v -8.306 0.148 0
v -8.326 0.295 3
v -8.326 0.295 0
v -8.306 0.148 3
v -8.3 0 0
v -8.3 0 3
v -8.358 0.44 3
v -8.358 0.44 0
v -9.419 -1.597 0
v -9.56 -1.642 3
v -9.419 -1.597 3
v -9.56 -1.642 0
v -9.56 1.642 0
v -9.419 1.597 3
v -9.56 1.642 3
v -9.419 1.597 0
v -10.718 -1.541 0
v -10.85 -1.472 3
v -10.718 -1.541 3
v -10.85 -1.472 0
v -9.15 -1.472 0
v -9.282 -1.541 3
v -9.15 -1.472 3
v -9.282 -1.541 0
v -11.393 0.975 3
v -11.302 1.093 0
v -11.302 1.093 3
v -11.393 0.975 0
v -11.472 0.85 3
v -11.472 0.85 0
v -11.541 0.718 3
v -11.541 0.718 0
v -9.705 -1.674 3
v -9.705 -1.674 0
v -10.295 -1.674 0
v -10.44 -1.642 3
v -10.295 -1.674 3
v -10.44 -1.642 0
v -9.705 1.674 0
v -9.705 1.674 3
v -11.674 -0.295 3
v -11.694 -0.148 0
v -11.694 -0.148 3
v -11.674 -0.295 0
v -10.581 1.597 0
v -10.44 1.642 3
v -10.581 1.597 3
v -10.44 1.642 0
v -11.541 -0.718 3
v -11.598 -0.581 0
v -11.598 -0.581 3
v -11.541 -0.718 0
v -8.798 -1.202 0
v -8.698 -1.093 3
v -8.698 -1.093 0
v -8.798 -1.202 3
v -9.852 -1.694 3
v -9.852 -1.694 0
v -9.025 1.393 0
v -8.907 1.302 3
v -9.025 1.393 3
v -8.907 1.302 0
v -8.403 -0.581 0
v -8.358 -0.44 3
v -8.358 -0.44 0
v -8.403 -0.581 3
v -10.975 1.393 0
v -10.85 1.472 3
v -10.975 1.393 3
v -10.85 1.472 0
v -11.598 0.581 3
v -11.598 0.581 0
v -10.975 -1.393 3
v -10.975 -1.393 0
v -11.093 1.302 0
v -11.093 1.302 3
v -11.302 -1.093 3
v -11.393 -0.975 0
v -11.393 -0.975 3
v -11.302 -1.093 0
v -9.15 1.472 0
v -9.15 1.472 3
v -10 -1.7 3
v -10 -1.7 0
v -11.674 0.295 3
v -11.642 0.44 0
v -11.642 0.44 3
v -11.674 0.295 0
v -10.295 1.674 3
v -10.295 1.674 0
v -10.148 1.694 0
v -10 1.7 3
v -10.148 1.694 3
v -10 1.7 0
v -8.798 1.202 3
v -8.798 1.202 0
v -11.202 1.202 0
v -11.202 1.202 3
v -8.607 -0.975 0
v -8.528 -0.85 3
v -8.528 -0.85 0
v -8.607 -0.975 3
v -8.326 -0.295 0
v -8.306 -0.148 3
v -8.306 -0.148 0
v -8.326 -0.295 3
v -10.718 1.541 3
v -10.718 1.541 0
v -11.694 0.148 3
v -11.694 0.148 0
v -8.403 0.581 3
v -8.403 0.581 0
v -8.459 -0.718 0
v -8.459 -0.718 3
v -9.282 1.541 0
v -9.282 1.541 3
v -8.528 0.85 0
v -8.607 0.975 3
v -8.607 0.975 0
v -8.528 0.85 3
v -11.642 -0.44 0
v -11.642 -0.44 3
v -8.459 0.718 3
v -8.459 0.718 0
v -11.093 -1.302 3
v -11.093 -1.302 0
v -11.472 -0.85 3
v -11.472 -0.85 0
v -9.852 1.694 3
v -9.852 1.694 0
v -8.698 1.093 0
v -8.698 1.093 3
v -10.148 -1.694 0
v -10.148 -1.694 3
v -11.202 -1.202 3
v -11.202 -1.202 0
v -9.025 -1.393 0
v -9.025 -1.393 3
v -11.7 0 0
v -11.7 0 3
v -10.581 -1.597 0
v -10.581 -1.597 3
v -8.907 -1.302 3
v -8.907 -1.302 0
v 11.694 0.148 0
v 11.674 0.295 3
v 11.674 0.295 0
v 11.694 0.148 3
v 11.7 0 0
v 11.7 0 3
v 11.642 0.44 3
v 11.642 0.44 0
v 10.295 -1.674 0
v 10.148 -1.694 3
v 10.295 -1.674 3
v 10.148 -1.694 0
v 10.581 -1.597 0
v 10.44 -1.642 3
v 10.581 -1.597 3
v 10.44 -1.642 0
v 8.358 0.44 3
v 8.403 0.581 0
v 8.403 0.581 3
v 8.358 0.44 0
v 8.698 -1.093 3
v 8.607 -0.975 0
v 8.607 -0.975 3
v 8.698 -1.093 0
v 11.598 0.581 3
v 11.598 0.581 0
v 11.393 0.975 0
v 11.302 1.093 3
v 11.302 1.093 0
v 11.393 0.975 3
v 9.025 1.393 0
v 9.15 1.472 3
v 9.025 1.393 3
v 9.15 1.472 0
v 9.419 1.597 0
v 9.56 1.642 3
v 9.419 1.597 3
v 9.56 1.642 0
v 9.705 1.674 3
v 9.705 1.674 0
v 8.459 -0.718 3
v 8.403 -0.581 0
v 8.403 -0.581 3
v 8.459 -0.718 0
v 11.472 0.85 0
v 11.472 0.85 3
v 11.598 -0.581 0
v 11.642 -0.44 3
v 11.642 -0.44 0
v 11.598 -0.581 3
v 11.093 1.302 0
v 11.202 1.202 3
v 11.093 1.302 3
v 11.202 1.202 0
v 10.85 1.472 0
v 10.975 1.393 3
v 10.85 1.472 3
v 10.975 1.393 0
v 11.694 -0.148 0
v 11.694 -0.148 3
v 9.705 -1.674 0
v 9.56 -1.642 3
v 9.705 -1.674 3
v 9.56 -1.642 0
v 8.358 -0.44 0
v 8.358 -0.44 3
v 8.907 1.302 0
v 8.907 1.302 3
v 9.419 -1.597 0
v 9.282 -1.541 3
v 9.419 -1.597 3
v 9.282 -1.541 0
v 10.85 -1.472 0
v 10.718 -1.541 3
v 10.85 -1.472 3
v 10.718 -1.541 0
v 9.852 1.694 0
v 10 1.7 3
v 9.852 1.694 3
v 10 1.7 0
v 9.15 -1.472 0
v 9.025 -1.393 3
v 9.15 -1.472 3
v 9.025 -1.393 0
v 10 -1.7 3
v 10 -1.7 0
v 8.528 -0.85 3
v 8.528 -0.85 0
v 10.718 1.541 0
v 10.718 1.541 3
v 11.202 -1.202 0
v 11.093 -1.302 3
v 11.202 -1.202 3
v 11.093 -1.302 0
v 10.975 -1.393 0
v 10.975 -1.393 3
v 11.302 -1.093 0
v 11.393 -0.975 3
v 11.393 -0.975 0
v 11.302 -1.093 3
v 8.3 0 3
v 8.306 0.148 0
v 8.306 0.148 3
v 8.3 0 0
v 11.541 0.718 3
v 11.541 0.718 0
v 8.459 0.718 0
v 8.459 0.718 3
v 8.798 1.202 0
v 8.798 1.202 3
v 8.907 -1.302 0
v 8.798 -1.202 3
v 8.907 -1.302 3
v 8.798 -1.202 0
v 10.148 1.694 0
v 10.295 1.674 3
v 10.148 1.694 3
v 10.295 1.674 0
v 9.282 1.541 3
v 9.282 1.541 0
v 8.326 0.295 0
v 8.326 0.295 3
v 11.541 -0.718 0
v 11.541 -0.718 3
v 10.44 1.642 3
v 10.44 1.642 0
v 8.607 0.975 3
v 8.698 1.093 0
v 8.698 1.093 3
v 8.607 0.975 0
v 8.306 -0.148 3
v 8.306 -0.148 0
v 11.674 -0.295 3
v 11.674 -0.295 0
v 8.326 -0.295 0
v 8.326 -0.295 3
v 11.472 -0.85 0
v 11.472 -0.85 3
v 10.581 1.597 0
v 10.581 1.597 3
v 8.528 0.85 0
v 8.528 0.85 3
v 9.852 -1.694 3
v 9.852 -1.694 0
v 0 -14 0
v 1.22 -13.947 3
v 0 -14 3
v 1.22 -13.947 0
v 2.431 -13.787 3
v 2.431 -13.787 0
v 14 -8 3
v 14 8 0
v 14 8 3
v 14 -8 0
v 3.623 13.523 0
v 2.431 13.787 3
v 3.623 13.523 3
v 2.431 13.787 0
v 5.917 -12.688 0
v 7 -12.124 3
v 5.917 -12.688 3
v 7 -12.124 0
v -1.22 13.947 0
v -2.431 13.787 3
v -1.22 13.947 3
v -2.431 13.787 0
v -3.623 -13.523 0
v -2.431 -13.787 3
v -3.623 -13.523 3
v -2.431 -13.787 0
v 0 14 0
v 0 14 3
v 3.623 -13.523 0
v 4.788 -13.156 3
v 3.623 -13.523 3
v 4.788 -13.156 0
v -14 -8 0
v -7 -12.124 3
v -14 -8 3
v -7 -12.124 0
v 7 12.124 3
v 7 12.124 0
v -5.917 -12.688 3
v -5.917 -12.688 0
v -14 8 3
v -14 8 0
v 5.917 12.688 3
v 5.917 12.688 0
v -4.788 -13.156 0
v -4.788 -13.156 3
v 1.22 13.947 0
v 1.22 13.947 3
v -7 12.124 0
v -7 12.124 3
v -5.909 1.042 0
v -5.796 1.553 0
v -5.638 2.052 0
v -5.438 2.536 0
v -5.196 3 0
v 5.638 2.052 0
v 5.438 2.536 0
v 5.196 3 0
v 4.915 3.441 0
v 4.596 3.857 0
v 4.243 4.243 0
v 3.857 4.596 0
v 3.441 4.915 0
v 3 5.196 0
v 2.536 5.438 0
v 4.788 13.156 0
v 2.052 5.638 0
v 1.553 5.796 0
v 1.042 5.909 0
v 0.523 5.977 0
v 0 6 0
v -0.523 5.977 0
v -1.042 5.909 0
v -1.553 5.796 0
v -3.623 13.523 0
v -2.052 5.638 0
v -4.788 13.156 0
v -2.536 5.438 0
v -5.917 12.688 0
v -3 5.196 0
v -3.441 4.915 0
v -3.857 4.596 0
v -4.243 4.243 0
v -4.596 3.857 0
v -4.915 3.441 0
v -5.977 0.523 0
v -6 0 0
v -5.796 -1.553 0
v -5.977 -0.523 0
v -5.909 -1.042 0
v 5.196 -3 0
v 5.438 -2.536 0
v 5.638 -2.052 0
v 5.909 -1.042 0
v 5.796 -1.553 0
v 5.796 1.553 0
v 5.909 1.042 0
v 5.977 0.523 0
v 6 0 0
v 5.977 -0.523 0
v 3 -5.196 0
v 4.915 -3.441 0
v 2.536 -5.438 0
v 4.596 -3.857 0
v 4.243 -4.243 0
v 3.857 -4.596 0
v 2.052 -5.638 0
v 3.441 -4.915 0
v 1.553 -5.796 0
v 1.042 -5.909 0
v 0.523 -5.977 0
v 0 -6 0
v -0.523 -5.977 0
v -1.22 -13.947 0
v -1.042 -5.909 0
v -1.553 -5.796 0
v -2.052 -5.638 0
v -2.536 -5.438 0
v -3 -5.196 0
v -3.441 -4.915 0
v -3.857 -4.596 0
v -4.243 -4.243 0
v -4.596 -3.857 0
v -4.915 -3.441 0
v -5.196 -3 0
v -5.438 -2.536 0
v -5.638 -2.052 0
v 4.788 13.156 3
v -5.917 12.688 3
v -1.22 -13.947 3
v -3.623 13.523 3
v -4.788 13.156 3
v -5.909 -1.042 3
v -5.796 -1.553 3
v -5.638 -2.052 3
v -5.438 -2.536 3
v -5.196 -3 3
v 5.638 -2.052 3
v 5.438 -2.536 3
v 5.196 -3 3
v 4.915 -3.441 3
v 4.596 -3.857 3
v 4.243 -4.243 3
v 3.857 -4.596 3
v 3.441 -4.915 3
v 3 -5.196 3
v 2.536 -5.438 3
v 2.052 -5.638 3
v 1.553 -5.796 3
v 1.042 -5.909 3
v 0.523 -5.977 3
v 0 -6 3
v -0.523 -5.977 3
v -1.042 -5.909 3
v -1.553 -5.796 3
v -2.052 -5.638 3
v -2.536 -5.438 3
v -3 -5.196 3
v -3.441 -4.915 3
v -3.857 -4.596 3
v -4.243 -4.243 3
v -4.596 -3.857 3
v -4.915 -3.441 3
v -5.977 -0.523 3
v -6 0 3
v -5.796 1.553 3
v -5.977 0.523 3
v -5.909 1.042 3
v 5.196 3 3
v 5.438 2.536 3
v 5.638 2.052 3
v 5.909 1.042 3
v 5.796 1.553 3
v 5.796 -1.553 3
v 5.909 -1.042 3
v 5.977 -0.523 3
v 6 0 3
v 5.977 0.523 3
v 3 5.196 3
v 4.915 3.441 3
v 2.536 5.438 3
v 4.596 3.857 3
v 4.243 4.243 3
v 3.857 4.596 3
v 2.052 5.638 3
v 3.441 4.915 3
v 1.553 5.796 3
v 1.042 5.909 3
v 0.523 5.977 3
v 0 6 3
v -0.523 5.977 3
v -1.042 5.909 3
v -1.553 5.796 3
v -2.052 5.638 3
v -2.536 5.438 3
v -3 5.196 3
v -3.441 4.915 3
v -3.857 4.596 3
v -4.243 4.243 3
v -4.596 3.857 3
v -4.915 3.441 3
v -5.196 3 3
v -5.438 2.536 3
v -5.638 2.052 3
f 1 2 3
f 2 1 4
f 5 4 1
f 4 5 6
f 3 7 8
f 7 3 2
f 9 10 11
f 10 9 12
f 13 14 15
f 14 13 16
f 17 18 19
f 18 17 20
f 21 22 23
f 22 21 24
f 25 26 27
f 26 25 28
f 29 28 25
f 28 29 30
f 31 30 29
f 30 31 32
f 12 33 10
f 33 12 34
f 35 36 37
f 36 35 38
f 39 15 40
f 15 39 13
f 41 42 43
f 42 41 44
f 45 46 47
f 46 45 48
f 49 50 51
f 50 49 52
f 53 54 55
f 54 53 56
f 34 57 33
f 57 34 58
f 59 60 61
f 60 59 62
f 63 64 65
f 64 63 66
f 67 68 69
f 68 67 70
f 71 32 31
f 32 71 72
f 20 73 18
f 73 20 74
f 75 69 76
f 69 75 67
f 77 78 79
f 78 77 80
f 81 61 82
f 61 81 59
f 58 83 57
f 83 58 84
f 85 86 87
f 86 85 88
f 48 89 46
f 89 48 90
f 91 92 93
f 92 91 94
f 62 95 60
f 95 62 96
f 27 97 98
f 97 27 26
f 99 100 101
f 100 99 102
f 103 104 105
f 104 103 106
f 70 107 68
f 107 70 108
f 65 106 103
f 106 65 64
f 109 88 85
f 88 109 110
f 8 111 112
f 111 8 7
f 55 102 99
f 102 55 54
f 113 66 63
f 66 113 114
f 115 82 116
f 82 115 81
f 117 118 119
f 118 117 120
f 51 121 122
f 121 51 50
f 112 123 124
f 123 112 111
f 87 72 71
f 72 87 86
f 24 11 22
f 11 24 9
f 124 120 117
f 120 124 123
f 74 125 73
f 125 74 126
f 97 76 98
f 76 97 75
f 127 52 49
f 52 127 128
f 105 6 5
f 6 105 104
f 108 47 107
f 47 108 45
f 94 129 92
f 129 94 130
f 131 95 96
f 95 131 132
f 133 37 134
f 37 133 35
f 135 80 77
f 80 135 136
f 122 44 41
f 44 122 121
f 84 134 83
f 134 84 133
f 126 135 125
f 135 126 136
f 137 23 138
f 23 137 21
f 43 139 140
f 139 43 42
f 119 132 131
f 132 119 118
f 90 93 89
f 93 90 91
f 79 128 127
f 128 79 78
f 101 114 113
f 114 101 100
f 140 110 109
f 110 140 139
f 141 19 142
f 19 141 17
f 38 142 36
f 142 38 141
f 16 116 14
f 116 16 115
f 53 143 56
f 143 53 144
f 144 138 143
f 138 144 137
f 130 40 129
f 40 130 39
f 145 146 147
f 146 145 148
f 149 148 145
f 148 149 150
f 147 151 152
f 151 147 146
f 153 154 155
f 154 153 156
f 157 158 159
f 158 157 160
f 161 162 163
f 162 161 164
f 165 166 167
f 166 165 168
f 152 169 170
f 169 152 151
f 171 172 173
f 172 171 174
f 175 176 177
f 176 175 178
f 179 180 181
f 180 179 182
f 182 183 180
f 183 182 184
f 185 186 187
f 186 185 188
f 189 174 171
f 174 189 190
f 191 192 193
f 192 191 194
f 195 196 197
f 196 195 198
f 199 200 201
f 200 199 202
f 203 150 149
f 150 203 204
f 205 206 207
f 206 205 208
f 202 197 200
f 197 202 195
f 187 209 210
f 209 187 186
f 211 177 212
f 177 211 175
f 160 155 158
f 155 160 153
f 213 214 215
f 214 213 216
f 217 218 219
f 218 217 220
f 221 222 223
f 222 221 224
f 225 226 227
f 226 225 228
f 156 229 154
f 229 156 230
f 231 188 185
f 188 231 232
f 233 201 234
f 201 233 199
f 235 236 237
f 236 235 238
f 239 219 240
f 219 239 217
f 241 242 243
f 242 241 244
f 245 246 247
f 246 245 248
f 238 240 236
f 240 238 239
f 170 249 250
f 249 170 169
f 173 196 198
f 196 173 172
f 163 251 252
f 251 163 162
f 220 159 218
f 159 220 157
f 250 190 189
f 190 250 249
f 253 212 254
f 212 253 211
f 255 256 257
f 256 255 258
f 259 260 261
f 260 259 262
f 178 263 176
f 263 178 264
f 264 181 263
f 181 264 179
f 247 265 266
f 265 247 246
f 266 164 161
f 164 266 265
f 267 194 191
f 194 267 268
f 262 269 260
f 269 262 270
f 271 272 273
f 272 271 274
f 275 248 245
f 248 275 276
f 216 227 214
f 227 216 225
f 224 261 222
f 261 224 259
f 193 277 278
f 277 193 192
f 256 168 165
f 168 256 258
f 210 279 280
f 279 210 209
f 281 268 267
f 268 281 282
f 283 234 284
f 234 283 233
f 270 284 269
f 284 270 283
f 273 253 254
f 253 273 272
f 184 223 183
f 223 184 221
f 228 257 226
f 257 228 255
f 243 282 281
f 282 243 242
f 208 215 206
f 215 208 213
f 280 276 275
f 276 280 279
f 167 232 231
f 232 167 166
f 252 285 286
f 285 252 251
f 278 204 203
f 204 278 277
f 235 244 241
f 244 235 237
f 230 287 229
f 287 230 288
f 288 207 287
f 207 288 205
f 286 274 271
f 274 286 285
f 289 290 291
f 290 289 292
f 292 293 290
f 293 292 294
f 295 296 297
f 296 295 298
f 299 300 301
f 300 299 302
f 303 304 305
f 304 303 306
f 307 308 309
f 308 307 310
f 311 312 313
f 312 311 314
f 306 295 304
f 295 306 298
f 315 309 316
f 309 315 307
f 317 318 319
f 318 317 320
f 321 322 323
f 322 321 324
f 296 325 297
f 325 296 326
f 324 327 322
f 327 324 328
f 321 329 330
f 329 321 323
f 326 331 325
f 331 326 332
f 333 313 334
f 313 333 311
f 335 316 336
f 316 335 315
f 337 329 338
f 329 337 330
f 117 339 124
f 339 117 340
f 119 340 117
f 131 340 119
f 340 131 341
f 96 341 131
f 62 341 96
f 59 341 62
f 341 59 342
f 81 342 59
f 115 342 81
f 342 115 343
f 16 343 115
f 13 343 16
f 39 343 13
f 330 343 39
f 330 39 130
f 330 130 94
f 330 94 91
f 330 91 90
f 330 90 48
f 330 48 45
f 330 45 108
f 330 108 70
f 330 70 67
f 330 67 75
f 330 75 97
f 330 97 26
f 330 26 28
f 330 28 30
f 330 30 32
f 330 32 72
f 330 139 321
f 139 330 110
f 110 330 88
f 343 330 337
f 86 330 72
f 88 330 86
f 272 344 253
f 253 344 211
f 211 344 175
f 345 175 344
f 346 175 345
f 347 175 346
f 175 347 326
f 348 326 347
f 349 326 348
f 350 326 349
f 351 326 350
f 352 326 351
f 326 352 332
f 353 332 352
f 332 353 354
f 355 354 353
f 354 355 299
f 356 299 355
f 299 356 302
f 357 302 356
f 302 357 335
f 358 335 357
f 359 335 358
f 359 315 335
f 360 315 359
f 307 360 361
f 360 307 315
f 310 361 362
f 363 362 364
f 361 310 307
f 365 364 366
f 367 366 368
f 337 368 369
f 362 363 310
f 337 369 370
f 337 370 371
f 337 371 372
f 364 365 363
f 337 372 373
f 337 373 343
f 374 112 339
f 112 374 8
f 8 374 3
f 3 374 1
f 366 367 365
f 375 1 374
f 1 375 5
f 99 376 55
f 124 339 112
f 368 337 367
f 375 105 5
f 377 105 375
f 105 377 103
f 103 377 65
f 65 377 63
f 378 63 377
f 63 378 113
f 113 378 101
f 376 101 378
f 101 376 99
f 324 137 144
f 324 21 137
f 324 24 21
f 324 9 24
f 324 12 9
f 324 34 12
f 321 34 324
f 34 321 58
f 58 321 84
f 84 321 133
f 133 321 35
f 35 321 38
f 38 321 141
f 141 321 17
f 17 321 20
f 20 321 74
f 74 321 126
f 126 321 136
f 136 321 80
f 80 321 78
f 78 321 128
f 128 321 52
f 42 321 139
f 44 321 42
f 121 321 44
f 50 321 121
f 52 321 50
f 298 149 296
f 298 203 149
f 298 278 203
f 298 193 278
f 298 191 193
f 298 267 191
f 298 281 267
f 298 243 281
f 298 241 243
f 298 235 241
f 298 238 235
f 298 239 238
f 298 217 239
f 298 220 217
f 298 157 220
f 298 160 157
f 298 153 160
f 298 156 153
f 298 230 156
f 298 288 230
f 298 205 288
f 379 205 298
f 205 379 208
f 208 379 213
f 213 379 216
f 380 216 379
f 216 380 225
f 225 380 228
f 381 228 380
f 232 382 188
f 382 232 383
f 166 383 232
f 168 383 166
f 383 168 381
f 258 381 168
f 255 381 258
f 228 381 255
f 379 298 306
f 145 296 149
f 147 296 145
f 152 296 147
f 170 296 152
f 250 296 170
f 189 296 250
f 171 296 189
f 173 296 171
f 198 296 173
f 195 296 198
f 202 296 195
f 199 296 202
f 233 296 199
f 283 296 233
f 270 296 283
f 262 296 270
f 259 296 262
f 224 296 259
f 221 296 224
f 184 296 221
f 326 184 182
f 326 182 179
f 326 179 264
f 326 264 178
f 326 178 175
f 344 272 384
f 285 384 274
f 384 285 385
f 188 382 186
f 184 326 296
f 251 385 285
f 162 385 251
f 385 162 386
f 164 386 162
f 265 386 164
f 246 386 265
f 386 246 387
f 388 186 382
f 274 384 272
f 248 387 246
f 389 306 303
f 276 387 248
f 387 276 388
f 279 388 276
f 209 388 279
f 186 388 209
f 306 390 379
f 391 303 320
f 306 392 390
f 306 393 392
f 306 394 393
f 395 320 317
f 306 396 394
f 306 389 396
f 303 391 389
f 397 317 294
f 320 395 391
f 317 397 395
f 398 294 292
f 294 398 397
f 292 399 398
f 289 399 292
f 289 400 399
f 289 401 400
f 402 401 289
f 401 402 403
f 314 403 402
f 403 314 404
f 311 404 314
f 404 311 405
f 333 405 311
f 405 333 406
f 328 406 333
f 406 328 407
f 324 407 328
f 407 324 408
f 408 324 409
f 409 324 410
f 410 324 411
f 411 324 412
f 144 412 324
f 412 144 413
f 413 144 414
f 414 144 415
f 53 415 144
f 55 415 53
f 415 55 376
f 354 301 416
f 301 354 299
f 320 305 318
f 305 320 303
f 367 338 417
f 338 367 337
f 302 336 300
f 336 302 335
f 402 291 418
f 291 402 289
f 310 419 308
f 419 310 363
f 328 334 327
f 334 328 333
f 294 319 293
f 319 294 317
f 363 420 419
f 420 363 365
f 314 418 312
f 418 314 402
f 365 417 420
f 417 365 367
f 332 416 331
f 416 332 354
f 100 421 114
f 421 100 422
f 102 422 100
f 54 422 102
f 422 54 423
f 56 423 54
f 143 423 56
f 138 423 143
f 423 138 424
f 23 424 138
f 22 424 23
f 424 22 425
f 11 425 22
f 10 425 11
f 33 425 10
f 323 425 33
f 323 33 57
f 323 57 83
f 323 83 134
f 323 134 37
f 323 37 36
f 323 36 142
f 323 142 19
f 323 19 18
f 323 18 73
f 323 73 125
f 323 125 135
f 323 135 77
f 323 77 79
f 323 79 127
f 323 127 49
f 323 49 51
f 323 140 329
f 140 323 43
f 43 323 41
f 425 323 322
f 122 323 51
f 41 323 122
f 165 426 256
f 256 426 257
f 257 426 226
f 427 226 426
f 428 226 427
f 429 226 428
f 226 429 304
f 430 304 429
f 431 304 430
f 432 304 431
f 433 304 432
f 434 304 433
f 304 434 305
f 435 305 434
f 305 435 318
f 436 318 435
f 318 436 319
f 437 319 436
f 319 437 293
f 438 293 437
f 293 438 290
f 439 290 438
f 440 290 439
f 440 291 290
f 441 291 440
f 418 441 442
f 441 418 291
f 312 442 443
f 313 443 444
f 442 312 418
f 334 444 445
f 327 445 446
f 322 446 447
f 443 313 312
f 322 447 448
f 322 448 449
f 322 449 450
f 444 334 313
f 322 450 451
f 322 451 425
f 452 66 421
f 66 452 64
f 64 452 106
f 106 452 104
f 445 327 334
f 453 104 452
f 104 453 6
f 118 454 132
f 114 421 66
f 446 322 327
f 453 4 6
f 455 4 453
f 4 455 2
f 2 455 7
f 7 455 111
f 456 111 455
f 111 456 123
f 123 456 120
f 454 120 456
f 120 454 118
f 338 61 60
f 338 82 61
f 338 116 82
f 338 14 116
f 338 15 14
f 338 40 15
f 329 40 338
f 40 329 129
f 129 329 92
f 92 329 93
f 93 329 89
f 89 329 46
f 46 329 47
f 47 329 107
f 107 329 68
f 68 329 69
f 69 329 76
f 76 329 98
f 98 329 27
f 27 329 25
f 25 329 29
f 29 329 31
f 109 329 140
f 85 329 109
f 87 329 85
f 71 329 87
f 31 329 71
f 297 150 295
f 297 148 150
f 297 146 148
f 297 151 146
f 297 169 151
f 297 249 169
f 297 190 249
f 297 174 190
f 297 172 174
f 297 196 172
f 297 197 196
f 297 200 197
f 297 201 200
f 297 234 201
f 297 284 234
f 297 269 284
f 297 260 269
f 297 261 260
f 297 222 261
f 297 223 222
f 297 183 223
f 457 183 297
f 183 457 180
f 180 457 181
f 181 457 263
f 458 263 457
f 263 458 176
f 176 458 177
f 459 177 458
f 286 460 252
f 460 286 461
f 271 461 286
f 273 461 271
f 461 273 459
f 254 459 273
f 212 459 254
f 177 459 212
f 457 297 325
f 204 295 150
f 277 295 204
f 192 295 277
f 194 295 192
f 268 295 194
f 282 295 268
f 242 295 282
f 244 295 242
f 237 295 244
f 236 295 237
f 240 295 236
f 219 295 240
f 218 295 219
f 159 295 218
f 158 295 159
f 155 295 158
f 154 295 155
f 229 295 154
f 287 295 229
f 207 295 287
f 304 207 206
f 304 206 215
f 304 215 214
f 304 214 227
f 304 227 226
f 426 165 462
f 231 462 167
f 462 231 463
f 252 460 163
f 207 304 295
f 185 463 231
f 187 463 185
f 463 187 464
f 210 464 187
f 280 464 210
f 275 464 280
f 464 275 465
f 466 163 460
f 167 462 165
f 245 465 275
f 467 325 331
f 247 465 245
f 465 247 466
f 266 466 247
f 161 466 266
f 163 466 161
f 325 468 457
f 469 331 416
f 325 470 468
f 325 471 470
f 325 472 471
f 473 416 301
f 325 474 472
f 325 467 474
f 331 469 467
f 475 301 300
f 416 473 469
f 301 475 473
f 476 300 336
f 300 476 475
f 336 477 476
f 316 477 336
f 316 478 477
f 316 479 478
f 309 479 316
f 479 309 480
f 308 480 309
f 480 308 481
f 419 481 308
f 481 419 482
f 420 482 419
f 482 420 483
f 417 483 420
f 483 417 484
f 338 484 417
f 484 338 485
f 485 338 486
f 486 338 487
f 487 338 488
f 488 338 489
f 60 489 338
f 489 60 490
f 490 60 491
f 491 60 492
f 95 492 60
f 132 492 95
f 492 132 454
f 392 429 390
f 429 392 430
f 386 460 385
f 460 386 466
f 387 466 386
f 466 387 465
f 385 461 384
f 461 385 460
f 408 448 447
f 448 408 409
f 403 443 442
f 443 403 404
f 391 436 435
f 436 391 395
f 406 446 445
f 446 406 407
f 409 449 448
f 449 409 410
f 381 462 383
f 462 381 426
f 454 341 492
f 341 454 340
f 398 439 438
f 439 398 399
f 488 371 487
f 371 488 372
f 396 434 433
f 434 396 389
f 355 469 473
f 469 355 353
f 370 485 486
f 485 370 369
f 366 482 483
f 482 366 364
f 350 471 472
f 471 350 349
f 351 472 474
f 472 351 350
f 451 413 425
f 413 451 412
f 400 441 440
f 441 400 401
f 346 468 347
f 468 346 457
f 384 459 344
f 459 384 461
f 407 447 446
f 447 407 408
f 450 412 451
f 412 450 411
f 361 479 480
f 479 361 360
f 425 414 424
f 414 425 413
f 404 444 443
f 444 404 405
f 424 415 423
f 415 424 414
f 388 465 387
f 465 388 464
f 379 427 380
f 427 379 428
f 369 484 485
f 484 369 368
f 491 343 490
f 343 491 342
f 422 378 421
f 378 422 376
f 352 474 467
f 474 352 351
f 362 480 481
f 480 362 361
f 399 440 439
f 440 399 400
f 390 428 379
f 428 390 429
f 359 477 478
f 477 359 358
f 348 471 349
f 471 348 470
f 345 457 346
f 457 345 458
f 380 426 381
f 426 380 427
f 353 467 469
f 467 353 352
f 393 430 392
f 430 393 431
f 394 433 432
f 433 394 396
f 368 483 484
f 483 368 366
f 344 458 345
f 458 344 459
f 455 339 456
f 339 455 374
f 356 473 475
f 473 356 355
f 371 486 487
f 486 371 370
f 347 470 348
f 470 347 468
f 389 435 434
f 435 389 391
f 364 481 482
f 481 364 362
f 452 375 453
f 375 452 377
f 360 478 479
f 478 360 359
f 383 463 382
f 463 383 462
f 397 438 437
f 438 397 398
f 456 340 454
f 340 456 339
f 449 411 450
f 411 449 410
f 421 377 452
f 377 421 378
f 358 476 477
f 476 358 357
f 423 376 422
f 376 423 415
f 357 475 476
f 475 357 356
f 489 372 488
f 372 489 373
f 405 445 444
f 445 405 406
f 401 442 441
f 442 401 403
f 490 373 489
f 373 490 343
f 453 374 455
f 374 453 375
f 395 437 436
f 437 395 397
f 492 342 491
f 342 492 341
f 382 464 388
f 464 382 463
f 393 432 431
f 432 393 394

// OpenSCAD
// file: parameters.scad
// Coax Faraday Generator Experiments v3 — shared parameters (mm)
// Three-layer coaxial: outer magnets + coil stator + inner magnets
// Orthodox Faraday only — mechanical → electrical. No overunity.
// Target: Anycubic Kobra 3 Max, 0.4 mm nozzle, 0.2 mm layers, PETG preferred.

$fn = 72;

// --- Printer / FDM ---
nozzle = 0.4;
layer = 0.2;
wall = 2.0;                 // ≥2 mm walls on drums
housing_wall = 2.4;
clearance_slip = 0.35;
press_interference = 0.15;  // 608 seat undersize total (~0.1–0.2)
magnet_pocket_xy = 0.25;    // +0.25 mm on diameter (within +0.2–0.3)
magnet_pocket_z = 0.15;     // +0.15 mm depth (within +0.1–0.2)

// --- Magnets (ASSUMPTION: Ø20×5 mm N42 axial discs, not bar stock) ---
magnet_d = 20;
magnet_h = 5;
pole_count = 8;             // alternating N/S around circumference

// --- Radial stack (from axis) ---
// Inner magnet FACE at r=33; magnets 5 mm thick → pocket floor at 33-5=28
r_inner_face = 33;
air_gap = 2.0;              // each side (1–3 mm sweep; nominal 2)
coil_radial = 9.0;          // winding depth
r_coil_inner = r_inner_face + air_gap;          // 35
r_coil_outer = r_coil_inner + coil_radial;      // 44
r_outer_face = r_coil_outer + air_gap;          // 46
// Outer magnet pocket floor (further out): face + thickness
r_outer_floor = r_outer_face + magnet_h;        // 51

inner_drum_od = 2 * (r_inner_face);             // face OD before pockets nuance
inner_drum_core_r = r_inner_face - magnet_h;    // 28
outer_drum_id = 2 * r_outer_face;               // clear to faces
outer_drum_od = 2 * (r_outer_floor + wall);     // ~106

axial_magnet = 22;          // pocket axial span (~magnet_d + margin)
coil_axial = 24;
drum_axial = 28;            // outer/inner drum barrel length

// --- Shaft / bearings 608-2RS ---
shaft_d = 8;
bearing_od = 22;
bearing_id = 8;
bearing_h = 7;
bearing_seat_od = bearing_od - press_interference; // ~21.85

// --- Base ---
base_w = 160;
base_d = 140;
base_h = 8;
post_h = 70;
post_spacing = 100;         // bearing center distance along shaft axis (Y)
post_d = 36;

// --- Crank ---
crank_arm_len = 80;
crank_arm_w = 16;
crank_arm_t = 10;
handle_d = 14;
handle_len = 40;

// --- Fasteners ---
m3_clear = 3.4;
m3_tap = 2.5;
m4_clear = 4.3;
// main file
include <parameters.scad>

// Retainer over 608 seat on base posts — print 2
module bearing_cap() {
    difference() {
        hull() {
            translate([-14, -8, 0]) cube([28, 16, 3]);
            translate([0, 0, 0]) cylinder(h = 3, d = 28);
        }
        // Shaft clearance
        translate([0, 0, -0.1]) cylinder(h = 3.2, d = 12);
        // Screw holes
        for (x = [-10, 10])
            translate([x, 0, -0.1]) cylinder(h = 3.2, d = m3_clear);
    }
}
bearing_cap();
